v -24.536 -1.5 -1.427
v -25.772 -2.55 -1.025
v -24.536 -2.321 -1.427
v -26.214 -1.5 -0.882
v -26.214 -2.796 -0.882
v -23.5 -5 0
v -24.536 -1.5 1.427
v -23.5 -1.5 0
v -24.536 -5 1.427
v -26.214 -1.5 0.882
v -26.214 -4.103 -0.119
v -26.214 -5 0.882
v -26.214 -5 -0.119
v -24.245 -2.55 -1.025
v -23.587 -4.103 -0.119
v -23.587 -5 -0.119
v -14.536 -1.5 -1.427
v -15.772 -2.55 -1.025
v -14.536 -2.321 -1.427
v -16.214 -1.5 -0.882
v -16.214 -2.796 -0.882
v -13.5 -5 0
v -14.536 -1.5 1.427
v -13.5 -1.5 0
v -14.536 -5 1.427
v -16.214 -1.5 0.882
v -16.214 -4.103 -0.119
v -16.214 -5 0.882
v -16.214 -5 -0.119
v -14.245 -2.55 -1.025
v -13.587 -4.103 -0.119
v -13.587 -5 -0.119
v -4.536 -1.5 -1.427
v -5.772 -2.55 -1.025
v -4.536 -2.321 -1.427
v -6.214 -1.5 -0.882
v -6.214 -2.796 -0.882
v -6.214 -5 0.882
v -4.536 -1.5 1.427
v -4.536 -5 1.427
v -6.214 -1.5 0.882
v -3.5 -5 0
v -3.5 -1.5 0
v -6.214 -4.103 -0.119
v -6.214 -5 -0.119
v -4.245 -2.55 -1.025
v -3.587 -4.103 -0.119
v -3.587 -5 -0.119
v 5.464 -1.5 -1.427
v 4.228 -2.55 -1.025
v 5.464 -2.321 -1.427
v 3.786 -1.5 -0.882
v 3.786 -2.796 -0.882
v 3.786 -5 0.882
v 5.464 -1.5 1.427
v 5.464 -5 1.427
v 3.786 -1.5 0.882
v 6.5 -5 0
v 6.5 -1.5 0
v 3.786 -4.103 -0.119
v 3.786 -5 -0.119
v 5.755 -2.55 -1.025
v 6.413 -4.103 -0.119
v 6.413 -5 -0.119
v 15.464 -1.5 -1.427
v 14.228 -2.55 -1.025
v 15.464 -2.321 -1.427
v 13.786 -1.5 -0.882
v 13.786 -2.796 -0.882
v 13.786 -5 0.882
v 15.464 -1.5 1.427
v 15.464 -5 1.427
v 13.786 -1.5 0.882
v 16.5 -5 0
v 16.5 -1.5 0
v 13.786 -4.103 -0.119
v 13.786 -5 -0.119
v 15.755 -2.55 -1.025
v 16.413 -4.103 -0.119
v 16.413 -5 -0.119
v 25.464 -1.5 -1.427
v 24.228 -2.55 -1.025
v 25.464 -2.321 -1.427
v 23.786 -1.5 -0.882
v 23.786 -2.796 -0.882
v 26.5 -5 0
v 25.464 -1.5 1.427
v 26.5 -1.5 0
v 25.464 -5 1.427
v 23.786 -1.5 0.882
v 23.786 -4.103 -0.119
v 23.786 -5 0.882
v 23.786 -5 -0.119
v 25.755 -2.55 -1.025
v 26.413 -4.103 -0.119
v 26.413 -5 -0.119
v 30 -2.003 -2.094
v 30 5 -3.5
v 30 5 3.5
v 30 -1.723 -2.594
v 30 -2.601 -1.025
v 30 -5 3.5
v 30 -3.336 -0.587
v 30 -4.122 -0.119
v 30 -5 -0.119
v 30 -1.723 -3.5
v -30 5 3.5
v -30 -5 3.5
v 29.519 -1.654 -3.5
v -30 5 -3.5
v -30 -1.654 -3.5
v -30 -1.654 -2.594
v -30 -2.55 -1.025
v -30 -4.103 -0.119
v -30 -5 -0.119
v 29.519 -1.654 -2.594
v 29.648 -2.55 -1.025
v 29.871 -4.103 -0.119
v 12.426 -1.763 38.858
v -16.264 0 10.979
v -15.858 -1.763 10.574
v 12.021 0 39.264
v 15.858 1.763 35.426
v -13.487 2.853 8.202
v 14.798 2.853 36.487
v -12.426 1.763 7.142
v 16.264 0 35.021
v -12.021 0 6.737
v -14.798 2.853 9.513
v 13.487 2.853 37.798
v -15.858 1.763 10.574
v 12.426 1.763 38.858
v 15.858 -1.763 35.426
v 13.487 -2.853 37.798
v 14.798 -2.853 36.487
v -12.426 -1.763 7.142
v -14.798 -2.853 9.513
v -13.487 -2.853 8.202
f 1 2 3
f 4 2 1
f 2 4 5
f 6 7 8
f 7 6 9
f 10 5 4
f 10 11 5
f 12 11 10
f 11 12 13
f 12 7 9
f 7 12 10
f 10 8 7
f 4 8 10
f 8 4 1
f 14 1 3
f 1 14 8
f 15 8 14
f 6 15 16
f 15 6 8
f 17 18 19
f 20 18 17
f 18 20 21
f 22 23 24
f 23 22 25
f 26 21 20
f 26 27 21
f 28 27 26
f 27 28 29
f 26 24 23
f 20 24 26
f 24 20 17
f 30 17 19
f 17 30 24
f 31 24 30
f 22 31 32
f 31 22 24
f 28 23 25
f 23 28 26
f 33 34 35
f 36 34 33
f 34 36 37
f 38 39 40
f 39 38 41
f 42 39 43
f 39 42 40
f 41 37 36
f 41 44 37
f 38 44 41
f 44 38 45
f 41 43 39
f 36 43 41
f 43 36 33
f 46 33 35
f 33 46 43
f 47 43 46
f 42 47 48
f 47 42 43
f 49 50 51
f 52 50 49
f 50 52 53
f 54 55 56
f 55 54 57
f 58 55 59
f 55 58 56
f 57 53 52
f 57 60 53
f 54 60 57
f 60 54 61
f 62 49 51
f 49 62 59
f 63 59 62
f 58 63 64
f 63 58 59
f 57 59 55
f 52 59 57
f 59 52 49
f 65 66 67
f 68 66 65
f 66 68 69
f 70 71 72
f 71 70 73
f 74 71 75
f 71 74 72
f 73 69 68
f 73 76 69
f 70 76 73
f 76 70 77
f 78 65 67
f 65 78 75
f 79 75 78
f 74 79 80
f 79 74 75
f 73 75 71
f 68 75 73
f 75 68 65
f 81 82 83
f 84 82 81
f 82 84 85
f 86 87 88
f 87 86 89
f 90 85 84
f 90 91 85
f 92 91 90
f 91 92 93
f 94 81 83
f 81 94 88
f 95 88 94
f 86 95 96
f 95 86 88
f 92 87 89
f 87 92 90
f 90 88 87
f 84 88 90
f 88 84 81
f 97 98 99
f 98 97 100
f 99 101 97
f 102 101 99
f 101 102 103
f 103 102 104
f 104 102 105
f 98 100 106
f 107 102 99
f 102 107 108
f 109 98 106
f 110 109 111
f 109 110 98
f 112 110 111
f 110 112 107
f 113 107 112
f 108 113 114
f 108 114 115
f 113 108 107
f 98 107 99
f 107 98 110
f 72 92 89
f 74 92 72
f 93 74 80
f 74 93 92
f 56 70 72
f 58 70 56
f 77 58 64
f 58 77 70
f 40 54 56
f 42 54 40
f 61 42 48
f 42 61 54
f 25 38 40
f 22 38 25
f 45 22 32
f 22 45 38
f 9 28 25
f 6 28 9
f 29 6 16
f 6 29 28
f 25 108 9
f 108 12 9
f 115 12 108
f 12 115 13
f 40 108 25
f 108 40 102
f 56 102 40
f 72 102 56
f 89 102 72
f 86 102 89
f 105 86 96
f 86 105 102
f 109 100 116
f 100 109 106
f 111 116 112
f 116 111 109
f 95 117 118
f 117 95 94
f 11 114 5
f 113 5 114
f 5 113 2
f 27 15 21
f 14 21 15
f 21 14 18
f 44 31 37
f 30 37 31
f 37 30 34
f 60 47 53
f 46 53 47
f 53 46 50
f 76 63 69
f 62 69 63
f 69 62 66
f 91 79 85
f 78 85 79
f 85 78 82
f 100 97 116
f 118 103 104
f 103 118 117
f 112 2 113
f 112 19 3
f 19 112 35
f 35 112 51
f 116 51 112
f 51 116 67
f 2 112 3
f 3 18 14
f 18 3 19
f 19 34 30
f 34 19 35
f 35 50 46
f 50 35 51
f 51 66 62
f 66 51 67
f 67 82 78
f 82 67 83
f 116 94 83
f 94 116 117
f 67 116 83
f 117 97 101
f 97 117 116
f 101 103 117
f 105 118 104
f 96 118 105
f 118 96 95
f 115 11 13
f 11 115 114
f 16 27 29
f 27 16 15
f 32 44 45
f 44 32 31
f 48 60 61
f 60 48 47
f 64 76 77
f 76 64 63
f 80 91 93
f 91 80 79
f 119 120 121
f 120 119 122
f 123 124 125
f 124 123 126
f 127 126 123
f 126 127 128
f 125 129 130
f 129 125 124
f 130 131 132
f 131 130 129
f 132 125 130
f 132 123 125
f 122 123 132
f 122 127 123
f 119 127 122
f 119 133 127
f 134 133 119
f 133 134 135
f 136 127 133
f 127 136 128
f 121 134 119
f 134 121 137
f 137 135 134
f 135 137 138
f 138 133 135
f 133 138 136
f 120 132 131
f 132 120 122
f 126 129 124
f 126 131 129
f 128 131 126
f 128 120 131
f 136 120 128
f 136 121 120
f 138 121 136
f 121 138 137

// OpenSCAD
// Base Plate
module base_plate() {
    difference() {
        // Adjusted base plate dimensions: 60x10x7 for a thicker profile
        cube([60, 10, 7], center = true); 
        
        // Adding beveled edges
        hull() {
            translate([-30, -5, -3.5]) sphere(r = 3.5);
            translate([30, -5, -3.5]) sphere(r = 3.5);
        }
        
        // Holes evenly spaced along one edge
        for (x = [-25, -15, -5, 5, 15, 25]) { 
            translate([x, -5, 0]) 
                rotate([90, 0, 0]) 
                    cylinder(r = 1.5, h = 7, center = true); // Adjusted hole height to match new thickness
        }
    }
}

// Cylindrical Rod
module cylindrical_rod() {
    translate([0, 0, 23]) // Adjusted position to account for thicker base plate
        rotate([0, 45, 0]) // Angle the rod upward
            cylinder(r = 3, h = 40, center = true); // Rod dimensions: radius 3, height 40
}

// Triangular Support Brace
module triangular_support_brace() {
    polyhedron(
        points = [
            [0, 0, 0], // Bottom-left corner
            [10, 0, 0], // Bottom-right corner
            [0, 0, 20], // Top corner
            [10, 0, 20], // Top-right corner (for thickness)
            [0, -2, 0], // Bottom-left corner (offset for thickness)
            [10, -2, 0], // Bottom-right corner (offset for thickness)
            [0, -2, 20], // Top corner (offset for thickness)
            [10, -2, 20] // Top-right corner (offset for thickness)
        ],
        faces = [
            [0, 1, 2], // Front face
            [1, 3, 2], // Back face
            [4, 5, 6], // Front face (offset)
            [5, 7, 6], // Back face (offset)
            [0, 1, 5, 4], // Bottom face
            [2, 3, 7, 6], // Top face
            [0, 2, 6, 4], // Left face
            [1, 3, 7, 5] // Right face
        ]
    );
}

// Assembly
module assembly() {
    base_plate();
    
    // Position the first brace
    translate([-10, -5, 3.5]) // Adjusted position to align with base plate and rod
        rotate([0, 0, 45]) // Adjusted angle for proper support
        triangular_support_brace();
    
    // Position the second brace
    translate([10, -5, 3.5]) // Adjusted position to align with base plate and rod
        rotate([0, 0, -45]) // Adjusted angle for proper support
        triangular_support_brace();
    
    cylindrical_rod();
    
    // Add triangular braces to connect the base plate and cylindrical rod
    translate([-10, 0, 3.5]) // Left brace
        rotate([0, 0, 45])
        triangular_support_brace();
    
    translate([10, 0, 3.5]) // Right brace
        rotate([0, 0, -45])
        triangular_support_brace();
}

// Render the assembly
assembly();
